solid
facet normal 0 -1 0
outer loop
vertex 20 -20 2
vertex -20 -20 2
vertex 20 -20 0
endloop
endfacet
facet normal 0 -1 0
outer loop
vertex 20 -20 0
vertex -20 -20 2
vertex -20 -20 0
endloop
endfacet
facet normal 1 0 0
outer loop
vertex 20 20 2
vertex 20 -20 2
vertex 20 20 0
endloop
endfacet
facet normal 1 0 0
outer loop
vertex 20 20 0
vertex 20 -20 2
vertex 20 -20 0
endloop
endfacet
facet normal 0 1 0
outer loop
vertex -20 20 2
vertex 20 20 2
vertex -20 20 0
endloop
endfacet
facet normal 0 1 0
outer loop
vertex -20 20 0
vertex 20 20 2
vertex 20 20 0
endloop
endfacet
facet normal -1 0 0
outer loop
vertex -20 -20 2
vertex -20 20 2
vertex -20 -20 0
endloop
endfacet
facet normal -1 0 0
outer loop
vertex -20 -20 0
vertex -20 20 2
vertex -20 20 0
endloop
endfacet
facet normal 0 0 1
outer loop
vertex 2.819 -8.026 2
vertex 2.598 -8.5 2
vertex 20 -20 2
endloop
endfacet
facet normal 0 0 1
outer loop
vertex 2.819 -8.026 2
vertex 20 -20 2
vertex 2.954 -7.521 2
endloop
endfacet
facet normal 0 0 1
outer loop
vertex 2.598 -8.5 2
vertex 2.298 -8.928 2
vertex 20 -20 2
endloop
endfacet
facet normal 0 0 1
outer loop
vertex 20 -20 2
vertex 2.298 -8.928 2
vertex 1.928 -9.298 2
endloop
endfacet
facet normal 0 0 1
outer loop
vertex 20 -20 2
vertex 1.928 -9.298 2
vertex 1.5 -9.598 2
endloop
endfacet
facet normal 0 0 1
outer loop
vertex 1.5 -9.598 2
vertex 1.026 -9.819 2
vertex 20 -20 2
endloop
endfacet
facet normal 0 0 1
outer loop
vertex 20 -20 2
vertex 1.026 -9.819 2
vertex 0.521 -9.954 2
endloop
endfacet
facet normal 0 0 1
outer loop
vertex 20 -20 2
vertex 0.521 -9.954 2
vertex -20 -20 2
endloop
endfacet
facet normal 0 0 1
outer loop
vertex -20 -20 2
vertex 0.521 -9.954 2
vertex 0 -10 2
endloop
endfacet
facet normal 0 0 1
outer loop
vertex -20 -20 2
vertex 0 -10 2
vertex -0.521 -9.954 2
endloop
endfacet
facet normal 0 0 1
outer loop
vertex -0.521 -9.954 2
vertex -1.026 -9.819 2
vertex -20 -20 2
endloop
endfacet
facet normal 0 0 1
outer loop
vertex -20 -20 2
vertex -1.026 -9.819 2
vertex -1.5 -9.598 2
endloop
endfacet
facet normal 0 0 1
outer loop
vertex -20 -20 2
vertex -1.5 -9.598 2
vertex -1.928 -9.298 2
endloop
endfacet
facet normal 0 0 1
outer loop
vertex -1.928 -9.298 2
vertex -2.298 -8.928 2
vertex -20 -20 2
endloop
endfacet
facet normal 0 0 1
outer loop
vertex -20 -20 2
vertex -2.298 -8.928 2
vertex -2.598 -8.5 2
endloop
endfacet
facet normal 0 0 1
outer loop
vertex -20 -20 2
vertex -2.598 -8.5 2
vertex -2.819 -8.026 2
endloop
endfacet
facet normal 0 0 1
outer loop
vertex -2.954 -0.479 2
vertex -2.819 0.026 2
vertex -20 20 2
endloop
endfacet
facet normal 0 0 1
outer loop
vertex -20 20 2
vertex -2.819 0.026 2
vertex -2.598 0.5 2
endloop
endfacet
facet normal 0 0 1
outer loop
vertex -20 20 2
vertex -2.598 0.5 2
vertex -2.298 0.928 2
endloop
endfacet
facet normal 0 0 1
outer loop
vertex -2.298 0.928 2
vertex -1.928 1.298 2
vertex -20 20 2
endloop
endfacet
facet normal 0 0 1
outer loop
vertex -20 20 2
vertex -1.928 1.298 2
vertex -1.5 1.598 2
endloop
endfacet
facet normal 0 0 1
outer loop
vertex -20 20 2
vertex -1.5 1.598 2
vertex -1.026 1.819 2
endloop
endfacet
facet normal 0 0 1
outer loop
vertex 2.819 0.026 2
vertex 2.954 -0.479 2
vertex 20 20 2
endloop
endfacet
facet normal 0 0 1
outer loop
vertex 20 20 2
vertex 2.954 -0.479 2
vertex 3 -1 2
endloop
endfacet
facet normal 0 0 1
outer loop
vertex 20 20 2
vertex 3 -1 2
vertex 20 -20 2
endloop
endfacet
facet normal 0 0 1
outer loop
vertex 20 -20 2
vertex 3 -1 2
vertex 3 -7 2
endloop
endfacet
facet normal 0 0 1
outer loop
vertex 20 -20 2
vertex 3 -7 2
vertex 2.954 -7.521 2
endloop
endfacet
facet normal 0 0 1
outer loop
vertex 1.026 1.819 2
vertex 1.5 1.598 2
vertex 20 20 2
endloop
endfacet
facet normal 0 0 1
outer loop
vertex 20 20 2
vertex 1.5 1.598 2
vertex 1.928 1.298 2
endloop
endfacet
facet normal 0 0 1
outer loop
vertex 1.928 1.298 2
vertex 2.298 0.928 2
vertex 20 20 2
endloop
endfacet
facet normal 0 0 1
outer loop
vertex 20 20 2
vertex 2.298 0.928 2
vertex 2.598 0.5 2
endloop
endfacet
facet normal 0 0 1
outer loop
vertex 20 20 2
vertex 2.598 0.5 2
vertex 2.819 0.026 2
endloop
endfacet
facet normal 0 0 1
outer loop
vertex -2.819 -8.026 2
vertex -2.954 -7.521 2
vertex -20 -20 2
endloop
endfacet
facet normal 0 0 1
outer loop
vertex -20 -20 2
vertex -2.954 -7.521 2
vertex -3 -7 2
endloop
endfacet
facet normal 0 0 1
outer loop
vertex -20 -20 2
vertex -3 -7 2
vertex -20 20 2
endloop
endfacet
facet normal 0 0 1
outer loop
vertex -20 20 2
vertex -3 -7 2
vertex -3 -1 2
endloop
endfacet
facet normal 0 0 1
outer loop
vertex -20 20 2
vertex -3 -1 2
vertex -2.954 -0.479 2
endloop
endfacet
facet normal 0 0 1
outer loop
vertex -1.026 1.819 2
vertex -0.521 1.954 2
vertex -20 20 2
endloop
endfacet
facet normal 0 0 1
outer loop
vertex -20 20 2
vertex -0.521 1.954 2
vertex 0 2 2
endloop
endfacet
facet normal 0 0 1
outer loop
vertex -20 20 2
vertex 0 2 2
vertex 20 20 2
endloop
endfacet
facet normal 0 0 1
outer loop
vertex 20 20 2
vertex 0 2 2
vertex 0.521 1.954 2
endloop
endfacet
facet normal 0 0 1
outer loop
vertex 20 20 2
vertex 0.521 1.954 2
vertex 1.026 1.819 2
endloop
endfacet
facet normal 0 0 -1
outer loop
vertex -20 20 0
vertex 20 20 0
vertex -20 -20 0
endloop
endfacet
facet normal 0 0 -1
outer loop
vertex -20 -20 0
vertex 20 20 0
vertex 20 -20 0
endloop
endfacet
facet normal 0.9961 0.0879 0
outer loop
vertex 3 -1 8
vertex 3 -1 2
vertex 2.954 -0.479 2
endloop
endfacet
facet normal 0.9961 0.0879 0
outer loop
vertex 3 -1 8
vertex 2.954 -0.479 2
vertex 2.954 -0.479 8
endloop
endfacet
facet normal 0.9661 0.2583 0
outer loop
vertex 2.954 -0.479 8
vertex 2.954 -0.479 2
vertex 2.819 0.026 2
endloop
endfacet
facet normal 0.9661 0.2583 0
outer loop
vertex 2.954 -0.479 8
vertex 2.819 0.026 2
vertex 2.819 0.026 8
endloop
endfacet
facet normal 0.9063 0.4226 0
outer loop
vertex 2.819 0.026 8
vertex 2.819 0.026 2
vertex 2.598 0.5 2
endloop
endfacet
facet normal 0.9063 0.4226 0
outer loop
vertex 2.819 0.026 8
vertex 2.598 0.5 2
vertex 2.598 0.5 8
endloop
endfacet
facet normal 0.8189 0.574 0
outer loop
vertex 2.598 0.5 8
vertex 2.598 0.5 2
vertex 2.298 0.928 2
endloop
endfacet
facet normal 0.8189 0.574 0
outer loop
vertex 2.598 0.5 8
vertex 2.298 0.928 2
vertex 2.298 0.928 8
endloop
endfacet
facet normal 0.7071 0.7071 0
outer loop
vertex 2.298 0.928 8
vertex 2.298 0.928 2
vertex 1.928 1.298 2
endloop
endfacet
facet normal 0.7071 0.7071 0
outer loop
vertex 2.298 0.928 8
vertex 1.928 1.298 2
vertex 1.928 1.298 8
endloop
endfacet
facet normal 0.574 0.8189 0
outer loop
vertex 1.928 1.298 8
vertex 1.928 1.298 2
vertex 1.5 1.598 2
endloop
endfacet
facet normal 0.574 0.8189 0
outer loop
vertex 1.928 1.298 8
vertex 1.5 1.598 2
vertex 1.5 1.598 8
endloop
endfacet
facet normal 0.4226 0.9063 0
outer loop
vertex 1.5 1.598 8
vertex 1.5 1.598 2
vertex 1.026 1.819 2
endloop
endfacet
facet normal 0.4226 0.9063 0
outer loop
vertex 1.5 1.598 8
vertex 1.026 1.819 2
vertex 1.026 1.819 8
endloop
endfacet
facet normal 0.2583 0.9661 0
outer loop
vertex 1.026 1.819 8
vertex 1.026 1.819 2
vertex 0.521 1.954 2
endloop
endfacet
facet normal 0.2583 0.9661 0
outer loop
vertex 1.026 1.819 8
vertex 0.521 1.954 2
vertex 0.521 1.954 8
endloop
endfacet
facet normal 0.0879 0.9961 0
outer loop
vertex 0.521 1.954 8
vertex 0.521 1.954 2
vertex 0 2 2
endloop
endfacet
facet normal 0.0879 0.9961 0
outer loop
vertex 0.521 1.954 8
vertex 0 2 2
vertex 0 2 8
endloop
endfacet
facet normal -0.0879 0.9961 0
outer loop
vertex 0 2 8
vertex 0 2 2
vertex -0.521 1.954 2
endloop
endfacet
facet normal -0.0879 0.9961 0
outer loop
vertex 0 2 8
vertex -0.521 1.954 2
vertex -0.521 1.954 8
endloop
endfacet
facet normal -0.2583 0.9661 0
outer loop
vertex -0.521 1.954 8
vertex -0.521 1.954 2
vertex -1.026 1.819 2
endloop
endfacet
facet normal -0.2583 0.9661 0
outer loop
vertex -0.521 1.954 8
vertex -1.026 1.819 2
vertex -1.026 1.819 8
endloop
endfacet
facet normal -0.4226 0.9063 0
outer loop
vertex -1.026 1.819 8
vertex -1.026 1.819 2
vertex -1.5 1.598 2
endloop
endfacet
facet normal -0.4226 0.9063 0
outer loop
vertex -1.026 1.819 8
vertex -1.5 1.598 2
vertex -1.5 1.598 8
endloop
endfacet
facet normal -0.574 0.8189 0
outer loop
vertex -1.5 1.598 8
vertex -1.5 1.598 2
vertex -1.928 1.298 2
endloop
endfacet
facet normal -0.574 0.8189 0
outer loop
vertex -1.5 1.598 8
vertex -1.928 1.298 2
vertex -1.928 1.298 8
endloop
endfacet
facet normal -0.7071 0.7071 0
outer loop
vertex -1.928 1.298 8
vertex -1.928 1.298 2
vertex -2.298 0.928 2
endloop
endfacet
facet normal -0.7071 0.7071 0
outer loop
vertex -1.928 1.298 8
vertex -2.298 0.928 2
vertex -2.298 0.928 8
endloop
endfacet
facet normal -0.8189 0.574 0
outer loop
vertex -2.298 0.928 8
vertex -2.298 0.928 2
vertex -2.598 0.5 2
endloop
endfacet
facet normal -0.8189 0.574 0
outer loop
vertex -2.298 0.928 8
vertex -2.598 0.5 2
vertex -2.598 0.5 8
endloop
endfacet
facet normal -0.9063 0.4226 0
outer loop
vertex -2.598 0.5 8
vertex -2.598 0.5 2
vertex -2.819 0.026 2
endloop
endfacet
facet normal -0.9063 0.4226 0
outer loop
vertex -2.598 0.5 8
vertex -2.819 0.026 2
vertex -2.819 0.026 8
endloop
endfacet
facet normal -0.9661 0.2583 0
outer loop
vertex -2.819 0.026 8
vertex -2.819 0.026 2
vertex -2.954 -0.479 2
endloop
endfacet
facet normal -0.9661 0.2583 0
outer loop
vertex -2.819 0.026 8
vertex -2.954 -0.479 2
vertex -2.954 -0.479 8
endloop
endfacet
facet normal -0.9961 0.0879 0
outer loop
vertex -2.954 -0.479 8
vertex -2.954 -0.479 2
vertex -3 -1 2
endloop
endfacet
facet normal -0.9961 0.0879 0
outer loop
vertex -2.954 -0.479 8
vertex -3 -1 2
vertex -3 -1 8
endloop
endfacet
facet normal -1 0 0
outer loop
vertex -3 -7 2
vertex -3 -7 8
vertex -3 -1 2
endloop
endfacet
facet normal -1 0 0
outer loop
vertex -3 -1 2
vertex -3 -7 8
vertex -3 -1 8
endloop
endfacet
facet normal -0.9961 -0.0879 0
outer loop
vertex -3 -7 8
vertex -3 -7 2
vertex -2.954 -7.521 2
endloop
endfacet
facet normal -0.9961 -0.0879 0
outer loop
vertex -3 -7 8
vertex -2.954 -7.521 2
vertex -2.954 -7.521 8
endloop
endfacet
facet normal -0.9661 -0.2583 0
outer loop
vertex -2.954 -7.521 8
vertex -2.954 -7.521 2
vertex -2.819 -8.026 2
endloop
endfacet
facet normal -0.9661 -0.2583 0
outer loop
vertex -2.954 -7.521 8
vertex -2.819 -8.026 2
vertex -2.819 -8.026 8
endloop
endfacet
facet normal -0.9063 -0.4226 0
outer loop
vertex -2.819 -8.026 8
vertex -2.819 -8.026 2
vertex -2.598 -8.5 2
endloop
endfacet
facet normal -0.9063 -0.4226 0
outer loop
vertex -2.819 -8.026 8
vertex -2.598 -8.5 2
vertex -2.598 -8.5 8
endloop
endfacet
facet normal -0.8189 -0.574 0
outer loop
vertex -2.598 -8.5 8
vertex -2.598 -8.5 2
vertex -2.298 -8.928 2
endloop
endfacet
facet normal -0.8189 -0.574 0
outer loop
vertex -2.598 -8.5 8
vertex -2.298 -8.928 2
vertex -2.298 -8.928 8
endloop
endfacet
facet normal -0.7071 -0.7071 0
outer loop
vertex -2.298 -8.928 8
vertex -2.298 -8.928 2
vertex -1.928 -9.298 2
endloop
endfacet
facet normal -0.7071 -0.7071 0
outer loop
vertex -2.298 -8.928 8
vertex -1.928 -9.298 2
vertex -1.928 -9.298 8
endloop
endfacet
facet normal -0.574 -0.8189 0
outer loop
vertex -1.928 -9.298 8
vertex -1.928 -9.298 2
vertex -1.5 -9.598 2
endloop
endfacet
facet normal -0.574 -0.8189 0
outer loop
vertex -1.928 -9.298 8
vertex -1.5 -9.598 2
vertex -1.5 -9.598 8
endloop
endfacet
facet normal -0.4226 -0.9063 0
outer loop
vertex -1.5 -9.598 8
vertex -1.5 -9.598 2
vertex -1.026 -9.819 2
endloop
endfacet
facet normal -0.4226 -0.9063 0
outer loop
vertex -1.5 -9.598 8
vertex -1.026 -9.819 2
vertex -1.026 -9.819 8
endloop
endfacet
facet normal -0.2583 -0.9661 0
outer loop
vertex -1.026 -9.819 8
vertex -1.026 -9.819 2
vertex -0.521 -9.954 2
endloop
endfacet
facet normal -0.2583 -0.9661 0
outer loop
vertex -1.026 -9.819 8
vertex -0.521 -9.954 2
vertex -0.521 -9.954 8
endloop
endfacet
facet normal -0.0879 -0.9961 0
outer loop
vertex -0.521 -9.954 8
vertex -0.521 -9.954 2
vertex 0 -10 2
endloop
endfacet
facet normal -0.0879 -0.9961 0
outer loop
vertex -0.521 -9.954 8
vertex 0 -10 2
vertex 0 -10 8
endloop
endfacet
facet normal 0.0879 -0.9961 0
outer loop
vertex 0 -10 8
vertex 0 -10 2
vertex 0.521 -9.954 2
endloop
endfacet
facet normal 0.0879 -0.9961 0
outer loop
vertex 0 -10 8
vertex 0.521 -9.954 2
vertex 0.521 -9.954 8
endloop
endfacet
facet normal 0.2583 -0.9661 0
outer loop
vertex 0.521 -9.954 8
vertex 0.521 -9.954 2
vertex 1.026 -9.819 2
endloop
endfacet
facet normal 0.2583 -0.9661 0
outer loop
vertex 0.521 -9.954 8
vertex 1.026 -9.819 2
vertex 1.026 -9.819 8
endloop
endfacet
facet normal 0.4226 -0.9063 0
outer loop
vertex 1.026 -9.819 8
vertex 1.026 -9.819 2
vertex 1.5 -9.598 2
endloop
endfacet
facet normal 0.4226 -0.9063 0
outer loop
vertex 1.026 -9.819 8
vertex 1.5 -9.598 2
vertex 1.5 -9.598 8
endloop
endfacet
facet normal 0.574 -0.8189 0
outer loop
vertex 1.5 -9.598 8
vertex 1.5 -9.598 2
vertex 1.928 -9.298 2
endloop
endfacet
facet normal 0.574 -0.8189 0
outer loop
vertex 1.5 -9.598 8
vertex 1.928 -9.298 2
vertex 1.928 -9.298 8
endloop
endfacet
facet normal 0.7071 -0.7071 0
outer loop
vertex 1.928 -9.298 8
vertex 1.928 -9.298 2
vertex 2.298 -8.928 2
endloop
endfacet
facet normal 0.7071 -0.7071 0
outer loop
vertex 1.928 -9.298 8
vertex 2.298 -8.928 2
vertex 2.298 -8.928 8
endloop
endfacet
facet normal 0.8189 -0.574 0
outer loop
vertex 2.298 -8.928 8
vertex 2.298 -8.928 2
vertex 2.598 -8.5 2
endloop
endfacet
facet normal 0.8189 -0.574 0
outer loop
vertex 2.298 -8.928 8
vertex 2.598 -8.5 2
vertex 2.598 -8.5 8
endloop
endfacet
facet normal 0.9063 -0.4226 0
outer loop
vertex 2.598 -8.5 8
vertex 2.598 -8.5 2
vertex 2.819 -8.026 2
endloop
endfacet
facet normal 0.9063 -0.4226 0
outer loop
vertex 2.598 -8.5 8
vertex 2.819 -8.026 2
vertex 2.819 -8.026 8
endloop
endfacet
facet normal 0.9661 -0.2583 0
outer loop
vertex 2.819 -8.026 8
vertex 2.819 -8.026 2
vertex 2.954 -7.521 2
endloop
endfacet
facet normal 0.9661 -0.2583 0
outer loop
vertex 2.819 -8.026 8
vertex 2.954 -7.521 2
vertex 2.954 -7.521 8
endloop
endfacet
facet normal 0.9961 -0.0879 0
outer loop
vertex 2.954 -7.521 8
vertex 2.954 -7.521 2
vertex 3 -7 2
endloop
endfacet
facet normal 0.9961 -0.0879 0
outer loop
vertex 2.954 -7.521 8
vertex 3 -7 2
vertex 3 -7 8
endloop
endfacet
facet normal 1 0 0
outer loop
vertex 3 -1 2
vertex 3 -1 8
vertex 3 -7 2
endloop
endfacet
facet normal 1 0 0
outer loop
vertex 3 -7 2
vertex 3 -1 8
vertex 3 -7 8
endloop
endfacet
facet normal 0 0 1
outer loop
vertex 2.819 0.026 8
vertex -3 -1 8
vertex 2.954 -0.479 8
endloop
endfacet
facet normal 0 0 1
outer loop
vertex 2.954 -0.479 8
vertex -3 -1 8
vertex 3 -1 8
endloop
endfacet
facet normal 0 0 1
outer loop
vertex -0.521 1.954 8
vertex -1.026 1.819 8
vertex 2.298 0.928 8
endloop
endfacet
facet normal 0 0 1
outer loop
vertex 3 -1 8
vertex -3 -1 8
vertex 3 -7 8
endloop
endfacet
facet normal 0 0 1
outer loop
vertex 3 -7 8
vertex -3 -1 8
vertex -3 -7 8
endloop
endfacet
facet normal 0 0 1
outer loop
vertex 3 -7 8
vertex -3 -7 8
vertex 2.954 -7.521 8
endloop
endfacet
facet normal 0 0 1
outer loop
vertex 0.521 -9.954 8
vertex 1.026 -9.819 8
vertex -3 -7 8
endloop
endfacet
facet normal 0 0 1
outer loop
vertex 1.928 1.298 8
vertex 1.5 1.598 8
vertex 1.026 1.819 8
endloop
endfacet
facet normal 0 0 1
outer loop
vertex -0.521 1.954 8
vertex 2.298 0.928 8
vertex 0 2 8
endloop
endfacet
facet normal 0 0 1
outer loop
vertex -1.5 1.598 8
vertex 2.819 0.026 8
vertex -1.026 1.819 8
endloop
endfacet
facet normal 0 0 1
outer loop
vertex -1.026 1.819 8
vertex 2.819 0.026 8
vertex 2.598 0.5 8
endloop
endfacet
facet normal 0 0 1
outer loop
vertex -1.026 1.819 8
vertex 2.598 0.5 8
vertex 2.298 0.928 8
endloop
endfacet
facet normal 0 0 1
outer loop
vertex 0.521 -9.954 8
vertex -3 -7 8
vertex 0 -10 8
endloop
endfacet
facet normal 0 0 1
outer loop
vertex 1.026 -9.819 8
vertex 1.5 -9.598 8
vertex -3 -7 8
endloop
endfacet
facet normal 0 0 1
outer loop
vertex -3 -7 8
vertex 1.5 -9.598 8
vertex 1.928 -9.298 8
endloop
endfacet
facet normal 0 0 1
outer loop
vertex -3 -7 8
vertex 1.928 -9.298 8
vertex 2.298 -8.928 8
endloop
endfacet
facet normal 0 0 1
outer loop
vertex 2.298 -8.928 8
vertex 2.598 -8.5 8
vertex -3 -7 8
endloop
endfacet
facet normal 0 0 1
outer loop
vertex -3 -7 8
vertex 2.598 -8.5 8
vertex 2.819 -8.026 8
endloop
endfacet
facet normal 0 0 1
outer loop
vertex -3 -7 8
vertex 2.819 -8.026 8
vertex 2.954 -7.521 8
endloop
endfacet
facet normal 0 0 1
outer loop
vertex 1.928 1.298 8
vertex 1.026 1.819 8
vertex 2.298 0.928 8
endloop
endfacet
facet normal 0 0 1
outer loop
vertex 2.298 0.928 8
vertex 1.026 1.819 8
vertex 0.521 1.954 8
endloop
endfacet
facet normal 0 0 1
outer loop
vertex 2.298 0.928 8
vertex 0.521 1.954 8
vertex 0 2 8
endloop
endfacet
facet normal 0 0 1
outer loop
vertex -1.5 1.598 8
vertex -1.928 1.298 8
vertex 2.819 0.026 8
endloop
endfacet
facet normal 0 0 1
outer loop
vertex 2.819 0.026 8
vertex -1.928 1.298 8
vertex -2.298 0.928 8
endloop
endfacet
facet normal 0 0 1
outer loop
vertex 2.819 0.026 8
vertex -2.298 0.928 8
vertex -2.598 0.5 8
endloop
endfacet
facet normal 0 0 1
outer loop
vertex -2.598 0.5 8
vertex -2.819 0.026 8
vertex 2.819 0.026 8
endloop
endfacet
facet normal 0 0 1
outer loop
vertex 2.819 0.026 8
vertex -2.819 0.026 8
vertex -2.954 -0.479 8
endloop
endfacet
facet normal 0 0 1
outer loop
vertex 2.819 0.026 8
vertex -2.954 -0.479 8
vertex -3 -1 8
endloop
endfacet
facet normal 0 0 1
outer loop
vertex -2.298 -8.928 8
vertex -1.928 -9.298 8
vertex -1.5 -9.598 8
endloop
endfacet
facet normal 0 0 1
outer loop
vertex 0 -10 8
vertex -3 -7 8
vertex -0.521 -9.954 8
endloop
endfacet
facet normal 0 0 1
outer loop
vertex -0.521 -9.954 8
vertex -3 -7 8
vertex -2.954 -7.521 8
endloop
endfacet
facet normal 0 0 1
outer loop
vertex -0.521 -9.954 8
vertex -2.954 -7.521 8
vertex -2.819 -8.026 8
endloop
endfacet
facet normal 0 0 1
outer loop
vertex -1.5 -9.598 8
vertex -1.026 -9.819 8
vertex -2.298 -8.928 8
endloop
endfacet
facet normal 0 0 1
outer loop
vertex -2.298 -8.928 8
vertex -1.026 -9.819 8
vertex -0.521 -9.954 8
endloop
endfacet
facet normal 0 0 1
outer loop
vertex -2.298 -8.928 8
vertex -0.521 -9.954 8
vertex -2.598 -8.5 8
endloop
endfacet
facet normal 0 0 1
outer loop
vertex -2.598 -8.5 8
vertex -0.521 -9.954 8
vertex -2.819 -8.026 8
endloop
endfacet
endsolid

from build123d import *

# Parameters (mm, degrees)
SKETCH_1_W      = 40
SKETCH_1_H      = 40
EXTRUDE_1_DEPTH = 2
EXTRUDE_2_DEPTH = 8


with BuildPart() as part:
    # 스케치1 → 보스-돌출1 (new body)
    with BuildSketch(Plane.XY):
        Rectangle(SKETCH_1_W, SKETCH_1_H)
        with BuildLine():
            ThreePointArc((3, -7), (0, -10), (-3, -7))
            Line((-3, -7), (-3, -1))
            ThreePointArc((-3, -1), (0, 2), (3, -1))
            Line((3, -1), (3, -7))
        make_face(mode=Mode.SUBTRACT)
    extrude(amount=EXTRUDE_1_DEPTH)

    # 스케치1<3> → 보스-돌출2 (add)
    with BuildSketch(Plane.XY):
        with BuildLine():
            ThreePointArc((-3, -7), (0, -10), (3, -7))
            Line((3, -7), (3, -1))
            ThreePointArc((3, -1), (0, 2), (-3, -1))
            Line((-3, -1), (-3, -7))
        make_face()
    extrude(amount=EXTRUDE_2_DEPTH)


solid = part.part
